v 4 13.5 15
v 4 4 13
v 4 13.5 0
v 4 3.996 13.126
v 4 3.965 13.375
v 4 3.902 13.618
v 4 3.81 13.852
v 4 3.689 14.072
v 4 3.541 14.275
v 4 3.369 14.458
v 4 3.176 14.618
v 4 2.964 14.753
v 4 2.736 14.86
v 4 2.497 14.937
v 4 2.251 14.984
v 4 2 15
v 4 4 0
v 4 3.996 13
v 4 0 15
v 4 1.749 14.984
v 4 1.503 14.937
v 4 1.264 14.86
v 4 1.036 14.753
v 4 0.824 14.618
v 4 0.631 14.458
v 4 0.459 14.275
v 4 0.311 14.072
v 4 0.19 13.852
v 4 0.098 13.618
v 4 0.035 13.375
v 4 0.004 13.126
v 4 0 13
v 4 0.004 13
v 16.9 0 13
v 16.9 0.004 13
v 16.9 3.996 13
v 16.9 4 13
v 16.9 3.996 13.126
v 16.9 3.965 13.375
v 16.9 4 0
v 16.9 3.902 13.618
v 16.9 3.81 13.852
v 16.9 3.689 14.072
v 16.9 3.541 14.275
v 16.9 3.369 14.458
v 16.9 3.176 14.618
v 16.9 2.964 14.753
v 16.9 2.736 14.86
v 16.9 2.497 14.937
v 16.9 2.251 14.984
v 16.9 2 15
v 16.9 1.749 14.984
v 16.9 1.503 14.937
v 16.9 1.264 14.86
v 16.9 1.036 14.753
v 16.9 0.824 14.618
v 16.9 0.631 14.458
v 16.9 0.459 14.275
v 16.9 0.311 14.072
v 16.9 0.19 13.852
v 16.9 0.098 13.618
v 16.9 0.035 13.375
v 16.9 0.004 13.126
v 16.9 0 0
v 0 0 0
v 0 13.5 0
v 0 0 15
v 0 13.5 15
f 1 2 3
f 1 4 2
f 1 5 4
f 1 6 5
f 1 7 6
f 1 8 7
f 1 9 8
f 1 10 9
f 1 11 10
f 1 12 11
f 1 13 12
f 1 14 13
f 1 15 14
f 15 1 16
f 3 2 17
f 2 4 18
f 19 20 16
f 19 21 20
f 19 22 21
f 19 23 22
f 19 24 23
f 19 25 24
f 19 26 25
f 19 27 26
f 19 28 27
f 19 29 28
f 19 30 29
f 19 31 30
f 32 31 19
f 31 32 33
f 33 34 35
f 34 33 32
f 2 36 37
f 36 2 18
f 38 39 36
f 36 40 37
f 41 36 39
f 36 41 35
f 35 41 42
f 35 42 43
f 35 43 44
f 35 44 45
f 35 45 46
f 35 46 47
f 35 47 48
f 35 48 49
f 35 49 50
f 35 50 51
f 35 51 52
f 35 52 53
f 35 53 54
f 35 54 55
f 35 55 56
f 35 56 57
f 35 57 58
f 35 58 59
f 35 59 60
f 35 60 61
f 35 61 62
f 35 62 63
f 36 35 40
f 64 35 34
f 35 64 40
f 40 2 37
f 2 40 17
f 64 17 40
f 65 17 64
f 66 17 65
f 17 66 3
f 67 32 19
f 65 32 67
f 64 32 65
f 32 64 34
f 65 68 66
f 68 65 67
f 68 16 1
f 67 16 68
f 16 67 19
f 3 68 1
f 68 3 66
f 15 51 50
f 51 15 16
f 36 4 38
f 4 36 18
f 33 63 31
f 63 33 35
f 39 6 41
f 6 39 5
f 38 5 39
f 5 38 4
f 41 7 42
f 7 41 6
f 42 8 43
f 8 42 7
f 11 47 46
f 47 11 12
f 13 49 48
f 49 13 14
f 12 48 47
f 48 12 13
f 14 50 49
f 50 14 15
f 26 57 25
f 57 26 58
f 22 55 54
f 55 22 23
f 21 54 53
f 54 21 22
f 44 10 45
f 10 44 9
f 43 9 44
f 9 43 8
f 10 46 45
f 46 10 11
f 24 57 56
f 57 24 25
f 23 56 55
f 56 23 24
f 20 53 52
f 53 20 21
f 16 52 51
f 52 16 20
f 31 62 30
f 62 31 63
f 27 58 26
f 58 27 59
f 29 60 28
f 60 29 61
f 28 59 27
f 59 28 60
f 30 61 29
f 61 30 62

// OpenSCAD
// file: Adapter_config.scad
adaptateur_ep = (300.5-286.5)/4;
adaptateur_ht = 103.5;
adaptateur_pf = 16.90;

onglet_ht = 15;
onglet_ep = 4;
onglet_ec = 2.5;

$fn = 50;
// main file
include <Adapter_config.scad>;

module adaptateur_onglet_droit()
{
    rect3_sx = adaptateur_pf-onglet_ep;
    rect3_sy = onglet_ep;
    rect3_sz = onglet_ht-onglet_ep/2;
    rect3_x = onglet_ep;
    rect3_y = 0;
    rect3_z = 0;

    rect4_sx = onglet_ep;
    rect4_sy = adaptateur_ep*2 + onglet_ep + onglet_ec;
    rect4_sz = onglet_ht;
    rect4_x = 0;
    rect4_y = 0;
    rect4_z = 0;

    cyl1_dm = onglet_ep;
    cyl1_ht = rect3_sx;

    union()
    {
        color("green")
        translate([rect3_x, rect3_y, rect3_z])
        cube([rect3_sx, rect3_sy, rect3_sz]);
        
        color("red")
        translate([rect4_x, rect4_y, rect4_z])
        cube([rect4_sx, rect4_sy, rect4_sz]);
        
        color("blue")
        translate([onglet_ep,onglet_ep/2,rect3_sz])
        rotate([0,90,0])
        cylinder(d=cyl1_dm, h=cyl1_ht);
    }
}

adaptateur_onglet_droit();
